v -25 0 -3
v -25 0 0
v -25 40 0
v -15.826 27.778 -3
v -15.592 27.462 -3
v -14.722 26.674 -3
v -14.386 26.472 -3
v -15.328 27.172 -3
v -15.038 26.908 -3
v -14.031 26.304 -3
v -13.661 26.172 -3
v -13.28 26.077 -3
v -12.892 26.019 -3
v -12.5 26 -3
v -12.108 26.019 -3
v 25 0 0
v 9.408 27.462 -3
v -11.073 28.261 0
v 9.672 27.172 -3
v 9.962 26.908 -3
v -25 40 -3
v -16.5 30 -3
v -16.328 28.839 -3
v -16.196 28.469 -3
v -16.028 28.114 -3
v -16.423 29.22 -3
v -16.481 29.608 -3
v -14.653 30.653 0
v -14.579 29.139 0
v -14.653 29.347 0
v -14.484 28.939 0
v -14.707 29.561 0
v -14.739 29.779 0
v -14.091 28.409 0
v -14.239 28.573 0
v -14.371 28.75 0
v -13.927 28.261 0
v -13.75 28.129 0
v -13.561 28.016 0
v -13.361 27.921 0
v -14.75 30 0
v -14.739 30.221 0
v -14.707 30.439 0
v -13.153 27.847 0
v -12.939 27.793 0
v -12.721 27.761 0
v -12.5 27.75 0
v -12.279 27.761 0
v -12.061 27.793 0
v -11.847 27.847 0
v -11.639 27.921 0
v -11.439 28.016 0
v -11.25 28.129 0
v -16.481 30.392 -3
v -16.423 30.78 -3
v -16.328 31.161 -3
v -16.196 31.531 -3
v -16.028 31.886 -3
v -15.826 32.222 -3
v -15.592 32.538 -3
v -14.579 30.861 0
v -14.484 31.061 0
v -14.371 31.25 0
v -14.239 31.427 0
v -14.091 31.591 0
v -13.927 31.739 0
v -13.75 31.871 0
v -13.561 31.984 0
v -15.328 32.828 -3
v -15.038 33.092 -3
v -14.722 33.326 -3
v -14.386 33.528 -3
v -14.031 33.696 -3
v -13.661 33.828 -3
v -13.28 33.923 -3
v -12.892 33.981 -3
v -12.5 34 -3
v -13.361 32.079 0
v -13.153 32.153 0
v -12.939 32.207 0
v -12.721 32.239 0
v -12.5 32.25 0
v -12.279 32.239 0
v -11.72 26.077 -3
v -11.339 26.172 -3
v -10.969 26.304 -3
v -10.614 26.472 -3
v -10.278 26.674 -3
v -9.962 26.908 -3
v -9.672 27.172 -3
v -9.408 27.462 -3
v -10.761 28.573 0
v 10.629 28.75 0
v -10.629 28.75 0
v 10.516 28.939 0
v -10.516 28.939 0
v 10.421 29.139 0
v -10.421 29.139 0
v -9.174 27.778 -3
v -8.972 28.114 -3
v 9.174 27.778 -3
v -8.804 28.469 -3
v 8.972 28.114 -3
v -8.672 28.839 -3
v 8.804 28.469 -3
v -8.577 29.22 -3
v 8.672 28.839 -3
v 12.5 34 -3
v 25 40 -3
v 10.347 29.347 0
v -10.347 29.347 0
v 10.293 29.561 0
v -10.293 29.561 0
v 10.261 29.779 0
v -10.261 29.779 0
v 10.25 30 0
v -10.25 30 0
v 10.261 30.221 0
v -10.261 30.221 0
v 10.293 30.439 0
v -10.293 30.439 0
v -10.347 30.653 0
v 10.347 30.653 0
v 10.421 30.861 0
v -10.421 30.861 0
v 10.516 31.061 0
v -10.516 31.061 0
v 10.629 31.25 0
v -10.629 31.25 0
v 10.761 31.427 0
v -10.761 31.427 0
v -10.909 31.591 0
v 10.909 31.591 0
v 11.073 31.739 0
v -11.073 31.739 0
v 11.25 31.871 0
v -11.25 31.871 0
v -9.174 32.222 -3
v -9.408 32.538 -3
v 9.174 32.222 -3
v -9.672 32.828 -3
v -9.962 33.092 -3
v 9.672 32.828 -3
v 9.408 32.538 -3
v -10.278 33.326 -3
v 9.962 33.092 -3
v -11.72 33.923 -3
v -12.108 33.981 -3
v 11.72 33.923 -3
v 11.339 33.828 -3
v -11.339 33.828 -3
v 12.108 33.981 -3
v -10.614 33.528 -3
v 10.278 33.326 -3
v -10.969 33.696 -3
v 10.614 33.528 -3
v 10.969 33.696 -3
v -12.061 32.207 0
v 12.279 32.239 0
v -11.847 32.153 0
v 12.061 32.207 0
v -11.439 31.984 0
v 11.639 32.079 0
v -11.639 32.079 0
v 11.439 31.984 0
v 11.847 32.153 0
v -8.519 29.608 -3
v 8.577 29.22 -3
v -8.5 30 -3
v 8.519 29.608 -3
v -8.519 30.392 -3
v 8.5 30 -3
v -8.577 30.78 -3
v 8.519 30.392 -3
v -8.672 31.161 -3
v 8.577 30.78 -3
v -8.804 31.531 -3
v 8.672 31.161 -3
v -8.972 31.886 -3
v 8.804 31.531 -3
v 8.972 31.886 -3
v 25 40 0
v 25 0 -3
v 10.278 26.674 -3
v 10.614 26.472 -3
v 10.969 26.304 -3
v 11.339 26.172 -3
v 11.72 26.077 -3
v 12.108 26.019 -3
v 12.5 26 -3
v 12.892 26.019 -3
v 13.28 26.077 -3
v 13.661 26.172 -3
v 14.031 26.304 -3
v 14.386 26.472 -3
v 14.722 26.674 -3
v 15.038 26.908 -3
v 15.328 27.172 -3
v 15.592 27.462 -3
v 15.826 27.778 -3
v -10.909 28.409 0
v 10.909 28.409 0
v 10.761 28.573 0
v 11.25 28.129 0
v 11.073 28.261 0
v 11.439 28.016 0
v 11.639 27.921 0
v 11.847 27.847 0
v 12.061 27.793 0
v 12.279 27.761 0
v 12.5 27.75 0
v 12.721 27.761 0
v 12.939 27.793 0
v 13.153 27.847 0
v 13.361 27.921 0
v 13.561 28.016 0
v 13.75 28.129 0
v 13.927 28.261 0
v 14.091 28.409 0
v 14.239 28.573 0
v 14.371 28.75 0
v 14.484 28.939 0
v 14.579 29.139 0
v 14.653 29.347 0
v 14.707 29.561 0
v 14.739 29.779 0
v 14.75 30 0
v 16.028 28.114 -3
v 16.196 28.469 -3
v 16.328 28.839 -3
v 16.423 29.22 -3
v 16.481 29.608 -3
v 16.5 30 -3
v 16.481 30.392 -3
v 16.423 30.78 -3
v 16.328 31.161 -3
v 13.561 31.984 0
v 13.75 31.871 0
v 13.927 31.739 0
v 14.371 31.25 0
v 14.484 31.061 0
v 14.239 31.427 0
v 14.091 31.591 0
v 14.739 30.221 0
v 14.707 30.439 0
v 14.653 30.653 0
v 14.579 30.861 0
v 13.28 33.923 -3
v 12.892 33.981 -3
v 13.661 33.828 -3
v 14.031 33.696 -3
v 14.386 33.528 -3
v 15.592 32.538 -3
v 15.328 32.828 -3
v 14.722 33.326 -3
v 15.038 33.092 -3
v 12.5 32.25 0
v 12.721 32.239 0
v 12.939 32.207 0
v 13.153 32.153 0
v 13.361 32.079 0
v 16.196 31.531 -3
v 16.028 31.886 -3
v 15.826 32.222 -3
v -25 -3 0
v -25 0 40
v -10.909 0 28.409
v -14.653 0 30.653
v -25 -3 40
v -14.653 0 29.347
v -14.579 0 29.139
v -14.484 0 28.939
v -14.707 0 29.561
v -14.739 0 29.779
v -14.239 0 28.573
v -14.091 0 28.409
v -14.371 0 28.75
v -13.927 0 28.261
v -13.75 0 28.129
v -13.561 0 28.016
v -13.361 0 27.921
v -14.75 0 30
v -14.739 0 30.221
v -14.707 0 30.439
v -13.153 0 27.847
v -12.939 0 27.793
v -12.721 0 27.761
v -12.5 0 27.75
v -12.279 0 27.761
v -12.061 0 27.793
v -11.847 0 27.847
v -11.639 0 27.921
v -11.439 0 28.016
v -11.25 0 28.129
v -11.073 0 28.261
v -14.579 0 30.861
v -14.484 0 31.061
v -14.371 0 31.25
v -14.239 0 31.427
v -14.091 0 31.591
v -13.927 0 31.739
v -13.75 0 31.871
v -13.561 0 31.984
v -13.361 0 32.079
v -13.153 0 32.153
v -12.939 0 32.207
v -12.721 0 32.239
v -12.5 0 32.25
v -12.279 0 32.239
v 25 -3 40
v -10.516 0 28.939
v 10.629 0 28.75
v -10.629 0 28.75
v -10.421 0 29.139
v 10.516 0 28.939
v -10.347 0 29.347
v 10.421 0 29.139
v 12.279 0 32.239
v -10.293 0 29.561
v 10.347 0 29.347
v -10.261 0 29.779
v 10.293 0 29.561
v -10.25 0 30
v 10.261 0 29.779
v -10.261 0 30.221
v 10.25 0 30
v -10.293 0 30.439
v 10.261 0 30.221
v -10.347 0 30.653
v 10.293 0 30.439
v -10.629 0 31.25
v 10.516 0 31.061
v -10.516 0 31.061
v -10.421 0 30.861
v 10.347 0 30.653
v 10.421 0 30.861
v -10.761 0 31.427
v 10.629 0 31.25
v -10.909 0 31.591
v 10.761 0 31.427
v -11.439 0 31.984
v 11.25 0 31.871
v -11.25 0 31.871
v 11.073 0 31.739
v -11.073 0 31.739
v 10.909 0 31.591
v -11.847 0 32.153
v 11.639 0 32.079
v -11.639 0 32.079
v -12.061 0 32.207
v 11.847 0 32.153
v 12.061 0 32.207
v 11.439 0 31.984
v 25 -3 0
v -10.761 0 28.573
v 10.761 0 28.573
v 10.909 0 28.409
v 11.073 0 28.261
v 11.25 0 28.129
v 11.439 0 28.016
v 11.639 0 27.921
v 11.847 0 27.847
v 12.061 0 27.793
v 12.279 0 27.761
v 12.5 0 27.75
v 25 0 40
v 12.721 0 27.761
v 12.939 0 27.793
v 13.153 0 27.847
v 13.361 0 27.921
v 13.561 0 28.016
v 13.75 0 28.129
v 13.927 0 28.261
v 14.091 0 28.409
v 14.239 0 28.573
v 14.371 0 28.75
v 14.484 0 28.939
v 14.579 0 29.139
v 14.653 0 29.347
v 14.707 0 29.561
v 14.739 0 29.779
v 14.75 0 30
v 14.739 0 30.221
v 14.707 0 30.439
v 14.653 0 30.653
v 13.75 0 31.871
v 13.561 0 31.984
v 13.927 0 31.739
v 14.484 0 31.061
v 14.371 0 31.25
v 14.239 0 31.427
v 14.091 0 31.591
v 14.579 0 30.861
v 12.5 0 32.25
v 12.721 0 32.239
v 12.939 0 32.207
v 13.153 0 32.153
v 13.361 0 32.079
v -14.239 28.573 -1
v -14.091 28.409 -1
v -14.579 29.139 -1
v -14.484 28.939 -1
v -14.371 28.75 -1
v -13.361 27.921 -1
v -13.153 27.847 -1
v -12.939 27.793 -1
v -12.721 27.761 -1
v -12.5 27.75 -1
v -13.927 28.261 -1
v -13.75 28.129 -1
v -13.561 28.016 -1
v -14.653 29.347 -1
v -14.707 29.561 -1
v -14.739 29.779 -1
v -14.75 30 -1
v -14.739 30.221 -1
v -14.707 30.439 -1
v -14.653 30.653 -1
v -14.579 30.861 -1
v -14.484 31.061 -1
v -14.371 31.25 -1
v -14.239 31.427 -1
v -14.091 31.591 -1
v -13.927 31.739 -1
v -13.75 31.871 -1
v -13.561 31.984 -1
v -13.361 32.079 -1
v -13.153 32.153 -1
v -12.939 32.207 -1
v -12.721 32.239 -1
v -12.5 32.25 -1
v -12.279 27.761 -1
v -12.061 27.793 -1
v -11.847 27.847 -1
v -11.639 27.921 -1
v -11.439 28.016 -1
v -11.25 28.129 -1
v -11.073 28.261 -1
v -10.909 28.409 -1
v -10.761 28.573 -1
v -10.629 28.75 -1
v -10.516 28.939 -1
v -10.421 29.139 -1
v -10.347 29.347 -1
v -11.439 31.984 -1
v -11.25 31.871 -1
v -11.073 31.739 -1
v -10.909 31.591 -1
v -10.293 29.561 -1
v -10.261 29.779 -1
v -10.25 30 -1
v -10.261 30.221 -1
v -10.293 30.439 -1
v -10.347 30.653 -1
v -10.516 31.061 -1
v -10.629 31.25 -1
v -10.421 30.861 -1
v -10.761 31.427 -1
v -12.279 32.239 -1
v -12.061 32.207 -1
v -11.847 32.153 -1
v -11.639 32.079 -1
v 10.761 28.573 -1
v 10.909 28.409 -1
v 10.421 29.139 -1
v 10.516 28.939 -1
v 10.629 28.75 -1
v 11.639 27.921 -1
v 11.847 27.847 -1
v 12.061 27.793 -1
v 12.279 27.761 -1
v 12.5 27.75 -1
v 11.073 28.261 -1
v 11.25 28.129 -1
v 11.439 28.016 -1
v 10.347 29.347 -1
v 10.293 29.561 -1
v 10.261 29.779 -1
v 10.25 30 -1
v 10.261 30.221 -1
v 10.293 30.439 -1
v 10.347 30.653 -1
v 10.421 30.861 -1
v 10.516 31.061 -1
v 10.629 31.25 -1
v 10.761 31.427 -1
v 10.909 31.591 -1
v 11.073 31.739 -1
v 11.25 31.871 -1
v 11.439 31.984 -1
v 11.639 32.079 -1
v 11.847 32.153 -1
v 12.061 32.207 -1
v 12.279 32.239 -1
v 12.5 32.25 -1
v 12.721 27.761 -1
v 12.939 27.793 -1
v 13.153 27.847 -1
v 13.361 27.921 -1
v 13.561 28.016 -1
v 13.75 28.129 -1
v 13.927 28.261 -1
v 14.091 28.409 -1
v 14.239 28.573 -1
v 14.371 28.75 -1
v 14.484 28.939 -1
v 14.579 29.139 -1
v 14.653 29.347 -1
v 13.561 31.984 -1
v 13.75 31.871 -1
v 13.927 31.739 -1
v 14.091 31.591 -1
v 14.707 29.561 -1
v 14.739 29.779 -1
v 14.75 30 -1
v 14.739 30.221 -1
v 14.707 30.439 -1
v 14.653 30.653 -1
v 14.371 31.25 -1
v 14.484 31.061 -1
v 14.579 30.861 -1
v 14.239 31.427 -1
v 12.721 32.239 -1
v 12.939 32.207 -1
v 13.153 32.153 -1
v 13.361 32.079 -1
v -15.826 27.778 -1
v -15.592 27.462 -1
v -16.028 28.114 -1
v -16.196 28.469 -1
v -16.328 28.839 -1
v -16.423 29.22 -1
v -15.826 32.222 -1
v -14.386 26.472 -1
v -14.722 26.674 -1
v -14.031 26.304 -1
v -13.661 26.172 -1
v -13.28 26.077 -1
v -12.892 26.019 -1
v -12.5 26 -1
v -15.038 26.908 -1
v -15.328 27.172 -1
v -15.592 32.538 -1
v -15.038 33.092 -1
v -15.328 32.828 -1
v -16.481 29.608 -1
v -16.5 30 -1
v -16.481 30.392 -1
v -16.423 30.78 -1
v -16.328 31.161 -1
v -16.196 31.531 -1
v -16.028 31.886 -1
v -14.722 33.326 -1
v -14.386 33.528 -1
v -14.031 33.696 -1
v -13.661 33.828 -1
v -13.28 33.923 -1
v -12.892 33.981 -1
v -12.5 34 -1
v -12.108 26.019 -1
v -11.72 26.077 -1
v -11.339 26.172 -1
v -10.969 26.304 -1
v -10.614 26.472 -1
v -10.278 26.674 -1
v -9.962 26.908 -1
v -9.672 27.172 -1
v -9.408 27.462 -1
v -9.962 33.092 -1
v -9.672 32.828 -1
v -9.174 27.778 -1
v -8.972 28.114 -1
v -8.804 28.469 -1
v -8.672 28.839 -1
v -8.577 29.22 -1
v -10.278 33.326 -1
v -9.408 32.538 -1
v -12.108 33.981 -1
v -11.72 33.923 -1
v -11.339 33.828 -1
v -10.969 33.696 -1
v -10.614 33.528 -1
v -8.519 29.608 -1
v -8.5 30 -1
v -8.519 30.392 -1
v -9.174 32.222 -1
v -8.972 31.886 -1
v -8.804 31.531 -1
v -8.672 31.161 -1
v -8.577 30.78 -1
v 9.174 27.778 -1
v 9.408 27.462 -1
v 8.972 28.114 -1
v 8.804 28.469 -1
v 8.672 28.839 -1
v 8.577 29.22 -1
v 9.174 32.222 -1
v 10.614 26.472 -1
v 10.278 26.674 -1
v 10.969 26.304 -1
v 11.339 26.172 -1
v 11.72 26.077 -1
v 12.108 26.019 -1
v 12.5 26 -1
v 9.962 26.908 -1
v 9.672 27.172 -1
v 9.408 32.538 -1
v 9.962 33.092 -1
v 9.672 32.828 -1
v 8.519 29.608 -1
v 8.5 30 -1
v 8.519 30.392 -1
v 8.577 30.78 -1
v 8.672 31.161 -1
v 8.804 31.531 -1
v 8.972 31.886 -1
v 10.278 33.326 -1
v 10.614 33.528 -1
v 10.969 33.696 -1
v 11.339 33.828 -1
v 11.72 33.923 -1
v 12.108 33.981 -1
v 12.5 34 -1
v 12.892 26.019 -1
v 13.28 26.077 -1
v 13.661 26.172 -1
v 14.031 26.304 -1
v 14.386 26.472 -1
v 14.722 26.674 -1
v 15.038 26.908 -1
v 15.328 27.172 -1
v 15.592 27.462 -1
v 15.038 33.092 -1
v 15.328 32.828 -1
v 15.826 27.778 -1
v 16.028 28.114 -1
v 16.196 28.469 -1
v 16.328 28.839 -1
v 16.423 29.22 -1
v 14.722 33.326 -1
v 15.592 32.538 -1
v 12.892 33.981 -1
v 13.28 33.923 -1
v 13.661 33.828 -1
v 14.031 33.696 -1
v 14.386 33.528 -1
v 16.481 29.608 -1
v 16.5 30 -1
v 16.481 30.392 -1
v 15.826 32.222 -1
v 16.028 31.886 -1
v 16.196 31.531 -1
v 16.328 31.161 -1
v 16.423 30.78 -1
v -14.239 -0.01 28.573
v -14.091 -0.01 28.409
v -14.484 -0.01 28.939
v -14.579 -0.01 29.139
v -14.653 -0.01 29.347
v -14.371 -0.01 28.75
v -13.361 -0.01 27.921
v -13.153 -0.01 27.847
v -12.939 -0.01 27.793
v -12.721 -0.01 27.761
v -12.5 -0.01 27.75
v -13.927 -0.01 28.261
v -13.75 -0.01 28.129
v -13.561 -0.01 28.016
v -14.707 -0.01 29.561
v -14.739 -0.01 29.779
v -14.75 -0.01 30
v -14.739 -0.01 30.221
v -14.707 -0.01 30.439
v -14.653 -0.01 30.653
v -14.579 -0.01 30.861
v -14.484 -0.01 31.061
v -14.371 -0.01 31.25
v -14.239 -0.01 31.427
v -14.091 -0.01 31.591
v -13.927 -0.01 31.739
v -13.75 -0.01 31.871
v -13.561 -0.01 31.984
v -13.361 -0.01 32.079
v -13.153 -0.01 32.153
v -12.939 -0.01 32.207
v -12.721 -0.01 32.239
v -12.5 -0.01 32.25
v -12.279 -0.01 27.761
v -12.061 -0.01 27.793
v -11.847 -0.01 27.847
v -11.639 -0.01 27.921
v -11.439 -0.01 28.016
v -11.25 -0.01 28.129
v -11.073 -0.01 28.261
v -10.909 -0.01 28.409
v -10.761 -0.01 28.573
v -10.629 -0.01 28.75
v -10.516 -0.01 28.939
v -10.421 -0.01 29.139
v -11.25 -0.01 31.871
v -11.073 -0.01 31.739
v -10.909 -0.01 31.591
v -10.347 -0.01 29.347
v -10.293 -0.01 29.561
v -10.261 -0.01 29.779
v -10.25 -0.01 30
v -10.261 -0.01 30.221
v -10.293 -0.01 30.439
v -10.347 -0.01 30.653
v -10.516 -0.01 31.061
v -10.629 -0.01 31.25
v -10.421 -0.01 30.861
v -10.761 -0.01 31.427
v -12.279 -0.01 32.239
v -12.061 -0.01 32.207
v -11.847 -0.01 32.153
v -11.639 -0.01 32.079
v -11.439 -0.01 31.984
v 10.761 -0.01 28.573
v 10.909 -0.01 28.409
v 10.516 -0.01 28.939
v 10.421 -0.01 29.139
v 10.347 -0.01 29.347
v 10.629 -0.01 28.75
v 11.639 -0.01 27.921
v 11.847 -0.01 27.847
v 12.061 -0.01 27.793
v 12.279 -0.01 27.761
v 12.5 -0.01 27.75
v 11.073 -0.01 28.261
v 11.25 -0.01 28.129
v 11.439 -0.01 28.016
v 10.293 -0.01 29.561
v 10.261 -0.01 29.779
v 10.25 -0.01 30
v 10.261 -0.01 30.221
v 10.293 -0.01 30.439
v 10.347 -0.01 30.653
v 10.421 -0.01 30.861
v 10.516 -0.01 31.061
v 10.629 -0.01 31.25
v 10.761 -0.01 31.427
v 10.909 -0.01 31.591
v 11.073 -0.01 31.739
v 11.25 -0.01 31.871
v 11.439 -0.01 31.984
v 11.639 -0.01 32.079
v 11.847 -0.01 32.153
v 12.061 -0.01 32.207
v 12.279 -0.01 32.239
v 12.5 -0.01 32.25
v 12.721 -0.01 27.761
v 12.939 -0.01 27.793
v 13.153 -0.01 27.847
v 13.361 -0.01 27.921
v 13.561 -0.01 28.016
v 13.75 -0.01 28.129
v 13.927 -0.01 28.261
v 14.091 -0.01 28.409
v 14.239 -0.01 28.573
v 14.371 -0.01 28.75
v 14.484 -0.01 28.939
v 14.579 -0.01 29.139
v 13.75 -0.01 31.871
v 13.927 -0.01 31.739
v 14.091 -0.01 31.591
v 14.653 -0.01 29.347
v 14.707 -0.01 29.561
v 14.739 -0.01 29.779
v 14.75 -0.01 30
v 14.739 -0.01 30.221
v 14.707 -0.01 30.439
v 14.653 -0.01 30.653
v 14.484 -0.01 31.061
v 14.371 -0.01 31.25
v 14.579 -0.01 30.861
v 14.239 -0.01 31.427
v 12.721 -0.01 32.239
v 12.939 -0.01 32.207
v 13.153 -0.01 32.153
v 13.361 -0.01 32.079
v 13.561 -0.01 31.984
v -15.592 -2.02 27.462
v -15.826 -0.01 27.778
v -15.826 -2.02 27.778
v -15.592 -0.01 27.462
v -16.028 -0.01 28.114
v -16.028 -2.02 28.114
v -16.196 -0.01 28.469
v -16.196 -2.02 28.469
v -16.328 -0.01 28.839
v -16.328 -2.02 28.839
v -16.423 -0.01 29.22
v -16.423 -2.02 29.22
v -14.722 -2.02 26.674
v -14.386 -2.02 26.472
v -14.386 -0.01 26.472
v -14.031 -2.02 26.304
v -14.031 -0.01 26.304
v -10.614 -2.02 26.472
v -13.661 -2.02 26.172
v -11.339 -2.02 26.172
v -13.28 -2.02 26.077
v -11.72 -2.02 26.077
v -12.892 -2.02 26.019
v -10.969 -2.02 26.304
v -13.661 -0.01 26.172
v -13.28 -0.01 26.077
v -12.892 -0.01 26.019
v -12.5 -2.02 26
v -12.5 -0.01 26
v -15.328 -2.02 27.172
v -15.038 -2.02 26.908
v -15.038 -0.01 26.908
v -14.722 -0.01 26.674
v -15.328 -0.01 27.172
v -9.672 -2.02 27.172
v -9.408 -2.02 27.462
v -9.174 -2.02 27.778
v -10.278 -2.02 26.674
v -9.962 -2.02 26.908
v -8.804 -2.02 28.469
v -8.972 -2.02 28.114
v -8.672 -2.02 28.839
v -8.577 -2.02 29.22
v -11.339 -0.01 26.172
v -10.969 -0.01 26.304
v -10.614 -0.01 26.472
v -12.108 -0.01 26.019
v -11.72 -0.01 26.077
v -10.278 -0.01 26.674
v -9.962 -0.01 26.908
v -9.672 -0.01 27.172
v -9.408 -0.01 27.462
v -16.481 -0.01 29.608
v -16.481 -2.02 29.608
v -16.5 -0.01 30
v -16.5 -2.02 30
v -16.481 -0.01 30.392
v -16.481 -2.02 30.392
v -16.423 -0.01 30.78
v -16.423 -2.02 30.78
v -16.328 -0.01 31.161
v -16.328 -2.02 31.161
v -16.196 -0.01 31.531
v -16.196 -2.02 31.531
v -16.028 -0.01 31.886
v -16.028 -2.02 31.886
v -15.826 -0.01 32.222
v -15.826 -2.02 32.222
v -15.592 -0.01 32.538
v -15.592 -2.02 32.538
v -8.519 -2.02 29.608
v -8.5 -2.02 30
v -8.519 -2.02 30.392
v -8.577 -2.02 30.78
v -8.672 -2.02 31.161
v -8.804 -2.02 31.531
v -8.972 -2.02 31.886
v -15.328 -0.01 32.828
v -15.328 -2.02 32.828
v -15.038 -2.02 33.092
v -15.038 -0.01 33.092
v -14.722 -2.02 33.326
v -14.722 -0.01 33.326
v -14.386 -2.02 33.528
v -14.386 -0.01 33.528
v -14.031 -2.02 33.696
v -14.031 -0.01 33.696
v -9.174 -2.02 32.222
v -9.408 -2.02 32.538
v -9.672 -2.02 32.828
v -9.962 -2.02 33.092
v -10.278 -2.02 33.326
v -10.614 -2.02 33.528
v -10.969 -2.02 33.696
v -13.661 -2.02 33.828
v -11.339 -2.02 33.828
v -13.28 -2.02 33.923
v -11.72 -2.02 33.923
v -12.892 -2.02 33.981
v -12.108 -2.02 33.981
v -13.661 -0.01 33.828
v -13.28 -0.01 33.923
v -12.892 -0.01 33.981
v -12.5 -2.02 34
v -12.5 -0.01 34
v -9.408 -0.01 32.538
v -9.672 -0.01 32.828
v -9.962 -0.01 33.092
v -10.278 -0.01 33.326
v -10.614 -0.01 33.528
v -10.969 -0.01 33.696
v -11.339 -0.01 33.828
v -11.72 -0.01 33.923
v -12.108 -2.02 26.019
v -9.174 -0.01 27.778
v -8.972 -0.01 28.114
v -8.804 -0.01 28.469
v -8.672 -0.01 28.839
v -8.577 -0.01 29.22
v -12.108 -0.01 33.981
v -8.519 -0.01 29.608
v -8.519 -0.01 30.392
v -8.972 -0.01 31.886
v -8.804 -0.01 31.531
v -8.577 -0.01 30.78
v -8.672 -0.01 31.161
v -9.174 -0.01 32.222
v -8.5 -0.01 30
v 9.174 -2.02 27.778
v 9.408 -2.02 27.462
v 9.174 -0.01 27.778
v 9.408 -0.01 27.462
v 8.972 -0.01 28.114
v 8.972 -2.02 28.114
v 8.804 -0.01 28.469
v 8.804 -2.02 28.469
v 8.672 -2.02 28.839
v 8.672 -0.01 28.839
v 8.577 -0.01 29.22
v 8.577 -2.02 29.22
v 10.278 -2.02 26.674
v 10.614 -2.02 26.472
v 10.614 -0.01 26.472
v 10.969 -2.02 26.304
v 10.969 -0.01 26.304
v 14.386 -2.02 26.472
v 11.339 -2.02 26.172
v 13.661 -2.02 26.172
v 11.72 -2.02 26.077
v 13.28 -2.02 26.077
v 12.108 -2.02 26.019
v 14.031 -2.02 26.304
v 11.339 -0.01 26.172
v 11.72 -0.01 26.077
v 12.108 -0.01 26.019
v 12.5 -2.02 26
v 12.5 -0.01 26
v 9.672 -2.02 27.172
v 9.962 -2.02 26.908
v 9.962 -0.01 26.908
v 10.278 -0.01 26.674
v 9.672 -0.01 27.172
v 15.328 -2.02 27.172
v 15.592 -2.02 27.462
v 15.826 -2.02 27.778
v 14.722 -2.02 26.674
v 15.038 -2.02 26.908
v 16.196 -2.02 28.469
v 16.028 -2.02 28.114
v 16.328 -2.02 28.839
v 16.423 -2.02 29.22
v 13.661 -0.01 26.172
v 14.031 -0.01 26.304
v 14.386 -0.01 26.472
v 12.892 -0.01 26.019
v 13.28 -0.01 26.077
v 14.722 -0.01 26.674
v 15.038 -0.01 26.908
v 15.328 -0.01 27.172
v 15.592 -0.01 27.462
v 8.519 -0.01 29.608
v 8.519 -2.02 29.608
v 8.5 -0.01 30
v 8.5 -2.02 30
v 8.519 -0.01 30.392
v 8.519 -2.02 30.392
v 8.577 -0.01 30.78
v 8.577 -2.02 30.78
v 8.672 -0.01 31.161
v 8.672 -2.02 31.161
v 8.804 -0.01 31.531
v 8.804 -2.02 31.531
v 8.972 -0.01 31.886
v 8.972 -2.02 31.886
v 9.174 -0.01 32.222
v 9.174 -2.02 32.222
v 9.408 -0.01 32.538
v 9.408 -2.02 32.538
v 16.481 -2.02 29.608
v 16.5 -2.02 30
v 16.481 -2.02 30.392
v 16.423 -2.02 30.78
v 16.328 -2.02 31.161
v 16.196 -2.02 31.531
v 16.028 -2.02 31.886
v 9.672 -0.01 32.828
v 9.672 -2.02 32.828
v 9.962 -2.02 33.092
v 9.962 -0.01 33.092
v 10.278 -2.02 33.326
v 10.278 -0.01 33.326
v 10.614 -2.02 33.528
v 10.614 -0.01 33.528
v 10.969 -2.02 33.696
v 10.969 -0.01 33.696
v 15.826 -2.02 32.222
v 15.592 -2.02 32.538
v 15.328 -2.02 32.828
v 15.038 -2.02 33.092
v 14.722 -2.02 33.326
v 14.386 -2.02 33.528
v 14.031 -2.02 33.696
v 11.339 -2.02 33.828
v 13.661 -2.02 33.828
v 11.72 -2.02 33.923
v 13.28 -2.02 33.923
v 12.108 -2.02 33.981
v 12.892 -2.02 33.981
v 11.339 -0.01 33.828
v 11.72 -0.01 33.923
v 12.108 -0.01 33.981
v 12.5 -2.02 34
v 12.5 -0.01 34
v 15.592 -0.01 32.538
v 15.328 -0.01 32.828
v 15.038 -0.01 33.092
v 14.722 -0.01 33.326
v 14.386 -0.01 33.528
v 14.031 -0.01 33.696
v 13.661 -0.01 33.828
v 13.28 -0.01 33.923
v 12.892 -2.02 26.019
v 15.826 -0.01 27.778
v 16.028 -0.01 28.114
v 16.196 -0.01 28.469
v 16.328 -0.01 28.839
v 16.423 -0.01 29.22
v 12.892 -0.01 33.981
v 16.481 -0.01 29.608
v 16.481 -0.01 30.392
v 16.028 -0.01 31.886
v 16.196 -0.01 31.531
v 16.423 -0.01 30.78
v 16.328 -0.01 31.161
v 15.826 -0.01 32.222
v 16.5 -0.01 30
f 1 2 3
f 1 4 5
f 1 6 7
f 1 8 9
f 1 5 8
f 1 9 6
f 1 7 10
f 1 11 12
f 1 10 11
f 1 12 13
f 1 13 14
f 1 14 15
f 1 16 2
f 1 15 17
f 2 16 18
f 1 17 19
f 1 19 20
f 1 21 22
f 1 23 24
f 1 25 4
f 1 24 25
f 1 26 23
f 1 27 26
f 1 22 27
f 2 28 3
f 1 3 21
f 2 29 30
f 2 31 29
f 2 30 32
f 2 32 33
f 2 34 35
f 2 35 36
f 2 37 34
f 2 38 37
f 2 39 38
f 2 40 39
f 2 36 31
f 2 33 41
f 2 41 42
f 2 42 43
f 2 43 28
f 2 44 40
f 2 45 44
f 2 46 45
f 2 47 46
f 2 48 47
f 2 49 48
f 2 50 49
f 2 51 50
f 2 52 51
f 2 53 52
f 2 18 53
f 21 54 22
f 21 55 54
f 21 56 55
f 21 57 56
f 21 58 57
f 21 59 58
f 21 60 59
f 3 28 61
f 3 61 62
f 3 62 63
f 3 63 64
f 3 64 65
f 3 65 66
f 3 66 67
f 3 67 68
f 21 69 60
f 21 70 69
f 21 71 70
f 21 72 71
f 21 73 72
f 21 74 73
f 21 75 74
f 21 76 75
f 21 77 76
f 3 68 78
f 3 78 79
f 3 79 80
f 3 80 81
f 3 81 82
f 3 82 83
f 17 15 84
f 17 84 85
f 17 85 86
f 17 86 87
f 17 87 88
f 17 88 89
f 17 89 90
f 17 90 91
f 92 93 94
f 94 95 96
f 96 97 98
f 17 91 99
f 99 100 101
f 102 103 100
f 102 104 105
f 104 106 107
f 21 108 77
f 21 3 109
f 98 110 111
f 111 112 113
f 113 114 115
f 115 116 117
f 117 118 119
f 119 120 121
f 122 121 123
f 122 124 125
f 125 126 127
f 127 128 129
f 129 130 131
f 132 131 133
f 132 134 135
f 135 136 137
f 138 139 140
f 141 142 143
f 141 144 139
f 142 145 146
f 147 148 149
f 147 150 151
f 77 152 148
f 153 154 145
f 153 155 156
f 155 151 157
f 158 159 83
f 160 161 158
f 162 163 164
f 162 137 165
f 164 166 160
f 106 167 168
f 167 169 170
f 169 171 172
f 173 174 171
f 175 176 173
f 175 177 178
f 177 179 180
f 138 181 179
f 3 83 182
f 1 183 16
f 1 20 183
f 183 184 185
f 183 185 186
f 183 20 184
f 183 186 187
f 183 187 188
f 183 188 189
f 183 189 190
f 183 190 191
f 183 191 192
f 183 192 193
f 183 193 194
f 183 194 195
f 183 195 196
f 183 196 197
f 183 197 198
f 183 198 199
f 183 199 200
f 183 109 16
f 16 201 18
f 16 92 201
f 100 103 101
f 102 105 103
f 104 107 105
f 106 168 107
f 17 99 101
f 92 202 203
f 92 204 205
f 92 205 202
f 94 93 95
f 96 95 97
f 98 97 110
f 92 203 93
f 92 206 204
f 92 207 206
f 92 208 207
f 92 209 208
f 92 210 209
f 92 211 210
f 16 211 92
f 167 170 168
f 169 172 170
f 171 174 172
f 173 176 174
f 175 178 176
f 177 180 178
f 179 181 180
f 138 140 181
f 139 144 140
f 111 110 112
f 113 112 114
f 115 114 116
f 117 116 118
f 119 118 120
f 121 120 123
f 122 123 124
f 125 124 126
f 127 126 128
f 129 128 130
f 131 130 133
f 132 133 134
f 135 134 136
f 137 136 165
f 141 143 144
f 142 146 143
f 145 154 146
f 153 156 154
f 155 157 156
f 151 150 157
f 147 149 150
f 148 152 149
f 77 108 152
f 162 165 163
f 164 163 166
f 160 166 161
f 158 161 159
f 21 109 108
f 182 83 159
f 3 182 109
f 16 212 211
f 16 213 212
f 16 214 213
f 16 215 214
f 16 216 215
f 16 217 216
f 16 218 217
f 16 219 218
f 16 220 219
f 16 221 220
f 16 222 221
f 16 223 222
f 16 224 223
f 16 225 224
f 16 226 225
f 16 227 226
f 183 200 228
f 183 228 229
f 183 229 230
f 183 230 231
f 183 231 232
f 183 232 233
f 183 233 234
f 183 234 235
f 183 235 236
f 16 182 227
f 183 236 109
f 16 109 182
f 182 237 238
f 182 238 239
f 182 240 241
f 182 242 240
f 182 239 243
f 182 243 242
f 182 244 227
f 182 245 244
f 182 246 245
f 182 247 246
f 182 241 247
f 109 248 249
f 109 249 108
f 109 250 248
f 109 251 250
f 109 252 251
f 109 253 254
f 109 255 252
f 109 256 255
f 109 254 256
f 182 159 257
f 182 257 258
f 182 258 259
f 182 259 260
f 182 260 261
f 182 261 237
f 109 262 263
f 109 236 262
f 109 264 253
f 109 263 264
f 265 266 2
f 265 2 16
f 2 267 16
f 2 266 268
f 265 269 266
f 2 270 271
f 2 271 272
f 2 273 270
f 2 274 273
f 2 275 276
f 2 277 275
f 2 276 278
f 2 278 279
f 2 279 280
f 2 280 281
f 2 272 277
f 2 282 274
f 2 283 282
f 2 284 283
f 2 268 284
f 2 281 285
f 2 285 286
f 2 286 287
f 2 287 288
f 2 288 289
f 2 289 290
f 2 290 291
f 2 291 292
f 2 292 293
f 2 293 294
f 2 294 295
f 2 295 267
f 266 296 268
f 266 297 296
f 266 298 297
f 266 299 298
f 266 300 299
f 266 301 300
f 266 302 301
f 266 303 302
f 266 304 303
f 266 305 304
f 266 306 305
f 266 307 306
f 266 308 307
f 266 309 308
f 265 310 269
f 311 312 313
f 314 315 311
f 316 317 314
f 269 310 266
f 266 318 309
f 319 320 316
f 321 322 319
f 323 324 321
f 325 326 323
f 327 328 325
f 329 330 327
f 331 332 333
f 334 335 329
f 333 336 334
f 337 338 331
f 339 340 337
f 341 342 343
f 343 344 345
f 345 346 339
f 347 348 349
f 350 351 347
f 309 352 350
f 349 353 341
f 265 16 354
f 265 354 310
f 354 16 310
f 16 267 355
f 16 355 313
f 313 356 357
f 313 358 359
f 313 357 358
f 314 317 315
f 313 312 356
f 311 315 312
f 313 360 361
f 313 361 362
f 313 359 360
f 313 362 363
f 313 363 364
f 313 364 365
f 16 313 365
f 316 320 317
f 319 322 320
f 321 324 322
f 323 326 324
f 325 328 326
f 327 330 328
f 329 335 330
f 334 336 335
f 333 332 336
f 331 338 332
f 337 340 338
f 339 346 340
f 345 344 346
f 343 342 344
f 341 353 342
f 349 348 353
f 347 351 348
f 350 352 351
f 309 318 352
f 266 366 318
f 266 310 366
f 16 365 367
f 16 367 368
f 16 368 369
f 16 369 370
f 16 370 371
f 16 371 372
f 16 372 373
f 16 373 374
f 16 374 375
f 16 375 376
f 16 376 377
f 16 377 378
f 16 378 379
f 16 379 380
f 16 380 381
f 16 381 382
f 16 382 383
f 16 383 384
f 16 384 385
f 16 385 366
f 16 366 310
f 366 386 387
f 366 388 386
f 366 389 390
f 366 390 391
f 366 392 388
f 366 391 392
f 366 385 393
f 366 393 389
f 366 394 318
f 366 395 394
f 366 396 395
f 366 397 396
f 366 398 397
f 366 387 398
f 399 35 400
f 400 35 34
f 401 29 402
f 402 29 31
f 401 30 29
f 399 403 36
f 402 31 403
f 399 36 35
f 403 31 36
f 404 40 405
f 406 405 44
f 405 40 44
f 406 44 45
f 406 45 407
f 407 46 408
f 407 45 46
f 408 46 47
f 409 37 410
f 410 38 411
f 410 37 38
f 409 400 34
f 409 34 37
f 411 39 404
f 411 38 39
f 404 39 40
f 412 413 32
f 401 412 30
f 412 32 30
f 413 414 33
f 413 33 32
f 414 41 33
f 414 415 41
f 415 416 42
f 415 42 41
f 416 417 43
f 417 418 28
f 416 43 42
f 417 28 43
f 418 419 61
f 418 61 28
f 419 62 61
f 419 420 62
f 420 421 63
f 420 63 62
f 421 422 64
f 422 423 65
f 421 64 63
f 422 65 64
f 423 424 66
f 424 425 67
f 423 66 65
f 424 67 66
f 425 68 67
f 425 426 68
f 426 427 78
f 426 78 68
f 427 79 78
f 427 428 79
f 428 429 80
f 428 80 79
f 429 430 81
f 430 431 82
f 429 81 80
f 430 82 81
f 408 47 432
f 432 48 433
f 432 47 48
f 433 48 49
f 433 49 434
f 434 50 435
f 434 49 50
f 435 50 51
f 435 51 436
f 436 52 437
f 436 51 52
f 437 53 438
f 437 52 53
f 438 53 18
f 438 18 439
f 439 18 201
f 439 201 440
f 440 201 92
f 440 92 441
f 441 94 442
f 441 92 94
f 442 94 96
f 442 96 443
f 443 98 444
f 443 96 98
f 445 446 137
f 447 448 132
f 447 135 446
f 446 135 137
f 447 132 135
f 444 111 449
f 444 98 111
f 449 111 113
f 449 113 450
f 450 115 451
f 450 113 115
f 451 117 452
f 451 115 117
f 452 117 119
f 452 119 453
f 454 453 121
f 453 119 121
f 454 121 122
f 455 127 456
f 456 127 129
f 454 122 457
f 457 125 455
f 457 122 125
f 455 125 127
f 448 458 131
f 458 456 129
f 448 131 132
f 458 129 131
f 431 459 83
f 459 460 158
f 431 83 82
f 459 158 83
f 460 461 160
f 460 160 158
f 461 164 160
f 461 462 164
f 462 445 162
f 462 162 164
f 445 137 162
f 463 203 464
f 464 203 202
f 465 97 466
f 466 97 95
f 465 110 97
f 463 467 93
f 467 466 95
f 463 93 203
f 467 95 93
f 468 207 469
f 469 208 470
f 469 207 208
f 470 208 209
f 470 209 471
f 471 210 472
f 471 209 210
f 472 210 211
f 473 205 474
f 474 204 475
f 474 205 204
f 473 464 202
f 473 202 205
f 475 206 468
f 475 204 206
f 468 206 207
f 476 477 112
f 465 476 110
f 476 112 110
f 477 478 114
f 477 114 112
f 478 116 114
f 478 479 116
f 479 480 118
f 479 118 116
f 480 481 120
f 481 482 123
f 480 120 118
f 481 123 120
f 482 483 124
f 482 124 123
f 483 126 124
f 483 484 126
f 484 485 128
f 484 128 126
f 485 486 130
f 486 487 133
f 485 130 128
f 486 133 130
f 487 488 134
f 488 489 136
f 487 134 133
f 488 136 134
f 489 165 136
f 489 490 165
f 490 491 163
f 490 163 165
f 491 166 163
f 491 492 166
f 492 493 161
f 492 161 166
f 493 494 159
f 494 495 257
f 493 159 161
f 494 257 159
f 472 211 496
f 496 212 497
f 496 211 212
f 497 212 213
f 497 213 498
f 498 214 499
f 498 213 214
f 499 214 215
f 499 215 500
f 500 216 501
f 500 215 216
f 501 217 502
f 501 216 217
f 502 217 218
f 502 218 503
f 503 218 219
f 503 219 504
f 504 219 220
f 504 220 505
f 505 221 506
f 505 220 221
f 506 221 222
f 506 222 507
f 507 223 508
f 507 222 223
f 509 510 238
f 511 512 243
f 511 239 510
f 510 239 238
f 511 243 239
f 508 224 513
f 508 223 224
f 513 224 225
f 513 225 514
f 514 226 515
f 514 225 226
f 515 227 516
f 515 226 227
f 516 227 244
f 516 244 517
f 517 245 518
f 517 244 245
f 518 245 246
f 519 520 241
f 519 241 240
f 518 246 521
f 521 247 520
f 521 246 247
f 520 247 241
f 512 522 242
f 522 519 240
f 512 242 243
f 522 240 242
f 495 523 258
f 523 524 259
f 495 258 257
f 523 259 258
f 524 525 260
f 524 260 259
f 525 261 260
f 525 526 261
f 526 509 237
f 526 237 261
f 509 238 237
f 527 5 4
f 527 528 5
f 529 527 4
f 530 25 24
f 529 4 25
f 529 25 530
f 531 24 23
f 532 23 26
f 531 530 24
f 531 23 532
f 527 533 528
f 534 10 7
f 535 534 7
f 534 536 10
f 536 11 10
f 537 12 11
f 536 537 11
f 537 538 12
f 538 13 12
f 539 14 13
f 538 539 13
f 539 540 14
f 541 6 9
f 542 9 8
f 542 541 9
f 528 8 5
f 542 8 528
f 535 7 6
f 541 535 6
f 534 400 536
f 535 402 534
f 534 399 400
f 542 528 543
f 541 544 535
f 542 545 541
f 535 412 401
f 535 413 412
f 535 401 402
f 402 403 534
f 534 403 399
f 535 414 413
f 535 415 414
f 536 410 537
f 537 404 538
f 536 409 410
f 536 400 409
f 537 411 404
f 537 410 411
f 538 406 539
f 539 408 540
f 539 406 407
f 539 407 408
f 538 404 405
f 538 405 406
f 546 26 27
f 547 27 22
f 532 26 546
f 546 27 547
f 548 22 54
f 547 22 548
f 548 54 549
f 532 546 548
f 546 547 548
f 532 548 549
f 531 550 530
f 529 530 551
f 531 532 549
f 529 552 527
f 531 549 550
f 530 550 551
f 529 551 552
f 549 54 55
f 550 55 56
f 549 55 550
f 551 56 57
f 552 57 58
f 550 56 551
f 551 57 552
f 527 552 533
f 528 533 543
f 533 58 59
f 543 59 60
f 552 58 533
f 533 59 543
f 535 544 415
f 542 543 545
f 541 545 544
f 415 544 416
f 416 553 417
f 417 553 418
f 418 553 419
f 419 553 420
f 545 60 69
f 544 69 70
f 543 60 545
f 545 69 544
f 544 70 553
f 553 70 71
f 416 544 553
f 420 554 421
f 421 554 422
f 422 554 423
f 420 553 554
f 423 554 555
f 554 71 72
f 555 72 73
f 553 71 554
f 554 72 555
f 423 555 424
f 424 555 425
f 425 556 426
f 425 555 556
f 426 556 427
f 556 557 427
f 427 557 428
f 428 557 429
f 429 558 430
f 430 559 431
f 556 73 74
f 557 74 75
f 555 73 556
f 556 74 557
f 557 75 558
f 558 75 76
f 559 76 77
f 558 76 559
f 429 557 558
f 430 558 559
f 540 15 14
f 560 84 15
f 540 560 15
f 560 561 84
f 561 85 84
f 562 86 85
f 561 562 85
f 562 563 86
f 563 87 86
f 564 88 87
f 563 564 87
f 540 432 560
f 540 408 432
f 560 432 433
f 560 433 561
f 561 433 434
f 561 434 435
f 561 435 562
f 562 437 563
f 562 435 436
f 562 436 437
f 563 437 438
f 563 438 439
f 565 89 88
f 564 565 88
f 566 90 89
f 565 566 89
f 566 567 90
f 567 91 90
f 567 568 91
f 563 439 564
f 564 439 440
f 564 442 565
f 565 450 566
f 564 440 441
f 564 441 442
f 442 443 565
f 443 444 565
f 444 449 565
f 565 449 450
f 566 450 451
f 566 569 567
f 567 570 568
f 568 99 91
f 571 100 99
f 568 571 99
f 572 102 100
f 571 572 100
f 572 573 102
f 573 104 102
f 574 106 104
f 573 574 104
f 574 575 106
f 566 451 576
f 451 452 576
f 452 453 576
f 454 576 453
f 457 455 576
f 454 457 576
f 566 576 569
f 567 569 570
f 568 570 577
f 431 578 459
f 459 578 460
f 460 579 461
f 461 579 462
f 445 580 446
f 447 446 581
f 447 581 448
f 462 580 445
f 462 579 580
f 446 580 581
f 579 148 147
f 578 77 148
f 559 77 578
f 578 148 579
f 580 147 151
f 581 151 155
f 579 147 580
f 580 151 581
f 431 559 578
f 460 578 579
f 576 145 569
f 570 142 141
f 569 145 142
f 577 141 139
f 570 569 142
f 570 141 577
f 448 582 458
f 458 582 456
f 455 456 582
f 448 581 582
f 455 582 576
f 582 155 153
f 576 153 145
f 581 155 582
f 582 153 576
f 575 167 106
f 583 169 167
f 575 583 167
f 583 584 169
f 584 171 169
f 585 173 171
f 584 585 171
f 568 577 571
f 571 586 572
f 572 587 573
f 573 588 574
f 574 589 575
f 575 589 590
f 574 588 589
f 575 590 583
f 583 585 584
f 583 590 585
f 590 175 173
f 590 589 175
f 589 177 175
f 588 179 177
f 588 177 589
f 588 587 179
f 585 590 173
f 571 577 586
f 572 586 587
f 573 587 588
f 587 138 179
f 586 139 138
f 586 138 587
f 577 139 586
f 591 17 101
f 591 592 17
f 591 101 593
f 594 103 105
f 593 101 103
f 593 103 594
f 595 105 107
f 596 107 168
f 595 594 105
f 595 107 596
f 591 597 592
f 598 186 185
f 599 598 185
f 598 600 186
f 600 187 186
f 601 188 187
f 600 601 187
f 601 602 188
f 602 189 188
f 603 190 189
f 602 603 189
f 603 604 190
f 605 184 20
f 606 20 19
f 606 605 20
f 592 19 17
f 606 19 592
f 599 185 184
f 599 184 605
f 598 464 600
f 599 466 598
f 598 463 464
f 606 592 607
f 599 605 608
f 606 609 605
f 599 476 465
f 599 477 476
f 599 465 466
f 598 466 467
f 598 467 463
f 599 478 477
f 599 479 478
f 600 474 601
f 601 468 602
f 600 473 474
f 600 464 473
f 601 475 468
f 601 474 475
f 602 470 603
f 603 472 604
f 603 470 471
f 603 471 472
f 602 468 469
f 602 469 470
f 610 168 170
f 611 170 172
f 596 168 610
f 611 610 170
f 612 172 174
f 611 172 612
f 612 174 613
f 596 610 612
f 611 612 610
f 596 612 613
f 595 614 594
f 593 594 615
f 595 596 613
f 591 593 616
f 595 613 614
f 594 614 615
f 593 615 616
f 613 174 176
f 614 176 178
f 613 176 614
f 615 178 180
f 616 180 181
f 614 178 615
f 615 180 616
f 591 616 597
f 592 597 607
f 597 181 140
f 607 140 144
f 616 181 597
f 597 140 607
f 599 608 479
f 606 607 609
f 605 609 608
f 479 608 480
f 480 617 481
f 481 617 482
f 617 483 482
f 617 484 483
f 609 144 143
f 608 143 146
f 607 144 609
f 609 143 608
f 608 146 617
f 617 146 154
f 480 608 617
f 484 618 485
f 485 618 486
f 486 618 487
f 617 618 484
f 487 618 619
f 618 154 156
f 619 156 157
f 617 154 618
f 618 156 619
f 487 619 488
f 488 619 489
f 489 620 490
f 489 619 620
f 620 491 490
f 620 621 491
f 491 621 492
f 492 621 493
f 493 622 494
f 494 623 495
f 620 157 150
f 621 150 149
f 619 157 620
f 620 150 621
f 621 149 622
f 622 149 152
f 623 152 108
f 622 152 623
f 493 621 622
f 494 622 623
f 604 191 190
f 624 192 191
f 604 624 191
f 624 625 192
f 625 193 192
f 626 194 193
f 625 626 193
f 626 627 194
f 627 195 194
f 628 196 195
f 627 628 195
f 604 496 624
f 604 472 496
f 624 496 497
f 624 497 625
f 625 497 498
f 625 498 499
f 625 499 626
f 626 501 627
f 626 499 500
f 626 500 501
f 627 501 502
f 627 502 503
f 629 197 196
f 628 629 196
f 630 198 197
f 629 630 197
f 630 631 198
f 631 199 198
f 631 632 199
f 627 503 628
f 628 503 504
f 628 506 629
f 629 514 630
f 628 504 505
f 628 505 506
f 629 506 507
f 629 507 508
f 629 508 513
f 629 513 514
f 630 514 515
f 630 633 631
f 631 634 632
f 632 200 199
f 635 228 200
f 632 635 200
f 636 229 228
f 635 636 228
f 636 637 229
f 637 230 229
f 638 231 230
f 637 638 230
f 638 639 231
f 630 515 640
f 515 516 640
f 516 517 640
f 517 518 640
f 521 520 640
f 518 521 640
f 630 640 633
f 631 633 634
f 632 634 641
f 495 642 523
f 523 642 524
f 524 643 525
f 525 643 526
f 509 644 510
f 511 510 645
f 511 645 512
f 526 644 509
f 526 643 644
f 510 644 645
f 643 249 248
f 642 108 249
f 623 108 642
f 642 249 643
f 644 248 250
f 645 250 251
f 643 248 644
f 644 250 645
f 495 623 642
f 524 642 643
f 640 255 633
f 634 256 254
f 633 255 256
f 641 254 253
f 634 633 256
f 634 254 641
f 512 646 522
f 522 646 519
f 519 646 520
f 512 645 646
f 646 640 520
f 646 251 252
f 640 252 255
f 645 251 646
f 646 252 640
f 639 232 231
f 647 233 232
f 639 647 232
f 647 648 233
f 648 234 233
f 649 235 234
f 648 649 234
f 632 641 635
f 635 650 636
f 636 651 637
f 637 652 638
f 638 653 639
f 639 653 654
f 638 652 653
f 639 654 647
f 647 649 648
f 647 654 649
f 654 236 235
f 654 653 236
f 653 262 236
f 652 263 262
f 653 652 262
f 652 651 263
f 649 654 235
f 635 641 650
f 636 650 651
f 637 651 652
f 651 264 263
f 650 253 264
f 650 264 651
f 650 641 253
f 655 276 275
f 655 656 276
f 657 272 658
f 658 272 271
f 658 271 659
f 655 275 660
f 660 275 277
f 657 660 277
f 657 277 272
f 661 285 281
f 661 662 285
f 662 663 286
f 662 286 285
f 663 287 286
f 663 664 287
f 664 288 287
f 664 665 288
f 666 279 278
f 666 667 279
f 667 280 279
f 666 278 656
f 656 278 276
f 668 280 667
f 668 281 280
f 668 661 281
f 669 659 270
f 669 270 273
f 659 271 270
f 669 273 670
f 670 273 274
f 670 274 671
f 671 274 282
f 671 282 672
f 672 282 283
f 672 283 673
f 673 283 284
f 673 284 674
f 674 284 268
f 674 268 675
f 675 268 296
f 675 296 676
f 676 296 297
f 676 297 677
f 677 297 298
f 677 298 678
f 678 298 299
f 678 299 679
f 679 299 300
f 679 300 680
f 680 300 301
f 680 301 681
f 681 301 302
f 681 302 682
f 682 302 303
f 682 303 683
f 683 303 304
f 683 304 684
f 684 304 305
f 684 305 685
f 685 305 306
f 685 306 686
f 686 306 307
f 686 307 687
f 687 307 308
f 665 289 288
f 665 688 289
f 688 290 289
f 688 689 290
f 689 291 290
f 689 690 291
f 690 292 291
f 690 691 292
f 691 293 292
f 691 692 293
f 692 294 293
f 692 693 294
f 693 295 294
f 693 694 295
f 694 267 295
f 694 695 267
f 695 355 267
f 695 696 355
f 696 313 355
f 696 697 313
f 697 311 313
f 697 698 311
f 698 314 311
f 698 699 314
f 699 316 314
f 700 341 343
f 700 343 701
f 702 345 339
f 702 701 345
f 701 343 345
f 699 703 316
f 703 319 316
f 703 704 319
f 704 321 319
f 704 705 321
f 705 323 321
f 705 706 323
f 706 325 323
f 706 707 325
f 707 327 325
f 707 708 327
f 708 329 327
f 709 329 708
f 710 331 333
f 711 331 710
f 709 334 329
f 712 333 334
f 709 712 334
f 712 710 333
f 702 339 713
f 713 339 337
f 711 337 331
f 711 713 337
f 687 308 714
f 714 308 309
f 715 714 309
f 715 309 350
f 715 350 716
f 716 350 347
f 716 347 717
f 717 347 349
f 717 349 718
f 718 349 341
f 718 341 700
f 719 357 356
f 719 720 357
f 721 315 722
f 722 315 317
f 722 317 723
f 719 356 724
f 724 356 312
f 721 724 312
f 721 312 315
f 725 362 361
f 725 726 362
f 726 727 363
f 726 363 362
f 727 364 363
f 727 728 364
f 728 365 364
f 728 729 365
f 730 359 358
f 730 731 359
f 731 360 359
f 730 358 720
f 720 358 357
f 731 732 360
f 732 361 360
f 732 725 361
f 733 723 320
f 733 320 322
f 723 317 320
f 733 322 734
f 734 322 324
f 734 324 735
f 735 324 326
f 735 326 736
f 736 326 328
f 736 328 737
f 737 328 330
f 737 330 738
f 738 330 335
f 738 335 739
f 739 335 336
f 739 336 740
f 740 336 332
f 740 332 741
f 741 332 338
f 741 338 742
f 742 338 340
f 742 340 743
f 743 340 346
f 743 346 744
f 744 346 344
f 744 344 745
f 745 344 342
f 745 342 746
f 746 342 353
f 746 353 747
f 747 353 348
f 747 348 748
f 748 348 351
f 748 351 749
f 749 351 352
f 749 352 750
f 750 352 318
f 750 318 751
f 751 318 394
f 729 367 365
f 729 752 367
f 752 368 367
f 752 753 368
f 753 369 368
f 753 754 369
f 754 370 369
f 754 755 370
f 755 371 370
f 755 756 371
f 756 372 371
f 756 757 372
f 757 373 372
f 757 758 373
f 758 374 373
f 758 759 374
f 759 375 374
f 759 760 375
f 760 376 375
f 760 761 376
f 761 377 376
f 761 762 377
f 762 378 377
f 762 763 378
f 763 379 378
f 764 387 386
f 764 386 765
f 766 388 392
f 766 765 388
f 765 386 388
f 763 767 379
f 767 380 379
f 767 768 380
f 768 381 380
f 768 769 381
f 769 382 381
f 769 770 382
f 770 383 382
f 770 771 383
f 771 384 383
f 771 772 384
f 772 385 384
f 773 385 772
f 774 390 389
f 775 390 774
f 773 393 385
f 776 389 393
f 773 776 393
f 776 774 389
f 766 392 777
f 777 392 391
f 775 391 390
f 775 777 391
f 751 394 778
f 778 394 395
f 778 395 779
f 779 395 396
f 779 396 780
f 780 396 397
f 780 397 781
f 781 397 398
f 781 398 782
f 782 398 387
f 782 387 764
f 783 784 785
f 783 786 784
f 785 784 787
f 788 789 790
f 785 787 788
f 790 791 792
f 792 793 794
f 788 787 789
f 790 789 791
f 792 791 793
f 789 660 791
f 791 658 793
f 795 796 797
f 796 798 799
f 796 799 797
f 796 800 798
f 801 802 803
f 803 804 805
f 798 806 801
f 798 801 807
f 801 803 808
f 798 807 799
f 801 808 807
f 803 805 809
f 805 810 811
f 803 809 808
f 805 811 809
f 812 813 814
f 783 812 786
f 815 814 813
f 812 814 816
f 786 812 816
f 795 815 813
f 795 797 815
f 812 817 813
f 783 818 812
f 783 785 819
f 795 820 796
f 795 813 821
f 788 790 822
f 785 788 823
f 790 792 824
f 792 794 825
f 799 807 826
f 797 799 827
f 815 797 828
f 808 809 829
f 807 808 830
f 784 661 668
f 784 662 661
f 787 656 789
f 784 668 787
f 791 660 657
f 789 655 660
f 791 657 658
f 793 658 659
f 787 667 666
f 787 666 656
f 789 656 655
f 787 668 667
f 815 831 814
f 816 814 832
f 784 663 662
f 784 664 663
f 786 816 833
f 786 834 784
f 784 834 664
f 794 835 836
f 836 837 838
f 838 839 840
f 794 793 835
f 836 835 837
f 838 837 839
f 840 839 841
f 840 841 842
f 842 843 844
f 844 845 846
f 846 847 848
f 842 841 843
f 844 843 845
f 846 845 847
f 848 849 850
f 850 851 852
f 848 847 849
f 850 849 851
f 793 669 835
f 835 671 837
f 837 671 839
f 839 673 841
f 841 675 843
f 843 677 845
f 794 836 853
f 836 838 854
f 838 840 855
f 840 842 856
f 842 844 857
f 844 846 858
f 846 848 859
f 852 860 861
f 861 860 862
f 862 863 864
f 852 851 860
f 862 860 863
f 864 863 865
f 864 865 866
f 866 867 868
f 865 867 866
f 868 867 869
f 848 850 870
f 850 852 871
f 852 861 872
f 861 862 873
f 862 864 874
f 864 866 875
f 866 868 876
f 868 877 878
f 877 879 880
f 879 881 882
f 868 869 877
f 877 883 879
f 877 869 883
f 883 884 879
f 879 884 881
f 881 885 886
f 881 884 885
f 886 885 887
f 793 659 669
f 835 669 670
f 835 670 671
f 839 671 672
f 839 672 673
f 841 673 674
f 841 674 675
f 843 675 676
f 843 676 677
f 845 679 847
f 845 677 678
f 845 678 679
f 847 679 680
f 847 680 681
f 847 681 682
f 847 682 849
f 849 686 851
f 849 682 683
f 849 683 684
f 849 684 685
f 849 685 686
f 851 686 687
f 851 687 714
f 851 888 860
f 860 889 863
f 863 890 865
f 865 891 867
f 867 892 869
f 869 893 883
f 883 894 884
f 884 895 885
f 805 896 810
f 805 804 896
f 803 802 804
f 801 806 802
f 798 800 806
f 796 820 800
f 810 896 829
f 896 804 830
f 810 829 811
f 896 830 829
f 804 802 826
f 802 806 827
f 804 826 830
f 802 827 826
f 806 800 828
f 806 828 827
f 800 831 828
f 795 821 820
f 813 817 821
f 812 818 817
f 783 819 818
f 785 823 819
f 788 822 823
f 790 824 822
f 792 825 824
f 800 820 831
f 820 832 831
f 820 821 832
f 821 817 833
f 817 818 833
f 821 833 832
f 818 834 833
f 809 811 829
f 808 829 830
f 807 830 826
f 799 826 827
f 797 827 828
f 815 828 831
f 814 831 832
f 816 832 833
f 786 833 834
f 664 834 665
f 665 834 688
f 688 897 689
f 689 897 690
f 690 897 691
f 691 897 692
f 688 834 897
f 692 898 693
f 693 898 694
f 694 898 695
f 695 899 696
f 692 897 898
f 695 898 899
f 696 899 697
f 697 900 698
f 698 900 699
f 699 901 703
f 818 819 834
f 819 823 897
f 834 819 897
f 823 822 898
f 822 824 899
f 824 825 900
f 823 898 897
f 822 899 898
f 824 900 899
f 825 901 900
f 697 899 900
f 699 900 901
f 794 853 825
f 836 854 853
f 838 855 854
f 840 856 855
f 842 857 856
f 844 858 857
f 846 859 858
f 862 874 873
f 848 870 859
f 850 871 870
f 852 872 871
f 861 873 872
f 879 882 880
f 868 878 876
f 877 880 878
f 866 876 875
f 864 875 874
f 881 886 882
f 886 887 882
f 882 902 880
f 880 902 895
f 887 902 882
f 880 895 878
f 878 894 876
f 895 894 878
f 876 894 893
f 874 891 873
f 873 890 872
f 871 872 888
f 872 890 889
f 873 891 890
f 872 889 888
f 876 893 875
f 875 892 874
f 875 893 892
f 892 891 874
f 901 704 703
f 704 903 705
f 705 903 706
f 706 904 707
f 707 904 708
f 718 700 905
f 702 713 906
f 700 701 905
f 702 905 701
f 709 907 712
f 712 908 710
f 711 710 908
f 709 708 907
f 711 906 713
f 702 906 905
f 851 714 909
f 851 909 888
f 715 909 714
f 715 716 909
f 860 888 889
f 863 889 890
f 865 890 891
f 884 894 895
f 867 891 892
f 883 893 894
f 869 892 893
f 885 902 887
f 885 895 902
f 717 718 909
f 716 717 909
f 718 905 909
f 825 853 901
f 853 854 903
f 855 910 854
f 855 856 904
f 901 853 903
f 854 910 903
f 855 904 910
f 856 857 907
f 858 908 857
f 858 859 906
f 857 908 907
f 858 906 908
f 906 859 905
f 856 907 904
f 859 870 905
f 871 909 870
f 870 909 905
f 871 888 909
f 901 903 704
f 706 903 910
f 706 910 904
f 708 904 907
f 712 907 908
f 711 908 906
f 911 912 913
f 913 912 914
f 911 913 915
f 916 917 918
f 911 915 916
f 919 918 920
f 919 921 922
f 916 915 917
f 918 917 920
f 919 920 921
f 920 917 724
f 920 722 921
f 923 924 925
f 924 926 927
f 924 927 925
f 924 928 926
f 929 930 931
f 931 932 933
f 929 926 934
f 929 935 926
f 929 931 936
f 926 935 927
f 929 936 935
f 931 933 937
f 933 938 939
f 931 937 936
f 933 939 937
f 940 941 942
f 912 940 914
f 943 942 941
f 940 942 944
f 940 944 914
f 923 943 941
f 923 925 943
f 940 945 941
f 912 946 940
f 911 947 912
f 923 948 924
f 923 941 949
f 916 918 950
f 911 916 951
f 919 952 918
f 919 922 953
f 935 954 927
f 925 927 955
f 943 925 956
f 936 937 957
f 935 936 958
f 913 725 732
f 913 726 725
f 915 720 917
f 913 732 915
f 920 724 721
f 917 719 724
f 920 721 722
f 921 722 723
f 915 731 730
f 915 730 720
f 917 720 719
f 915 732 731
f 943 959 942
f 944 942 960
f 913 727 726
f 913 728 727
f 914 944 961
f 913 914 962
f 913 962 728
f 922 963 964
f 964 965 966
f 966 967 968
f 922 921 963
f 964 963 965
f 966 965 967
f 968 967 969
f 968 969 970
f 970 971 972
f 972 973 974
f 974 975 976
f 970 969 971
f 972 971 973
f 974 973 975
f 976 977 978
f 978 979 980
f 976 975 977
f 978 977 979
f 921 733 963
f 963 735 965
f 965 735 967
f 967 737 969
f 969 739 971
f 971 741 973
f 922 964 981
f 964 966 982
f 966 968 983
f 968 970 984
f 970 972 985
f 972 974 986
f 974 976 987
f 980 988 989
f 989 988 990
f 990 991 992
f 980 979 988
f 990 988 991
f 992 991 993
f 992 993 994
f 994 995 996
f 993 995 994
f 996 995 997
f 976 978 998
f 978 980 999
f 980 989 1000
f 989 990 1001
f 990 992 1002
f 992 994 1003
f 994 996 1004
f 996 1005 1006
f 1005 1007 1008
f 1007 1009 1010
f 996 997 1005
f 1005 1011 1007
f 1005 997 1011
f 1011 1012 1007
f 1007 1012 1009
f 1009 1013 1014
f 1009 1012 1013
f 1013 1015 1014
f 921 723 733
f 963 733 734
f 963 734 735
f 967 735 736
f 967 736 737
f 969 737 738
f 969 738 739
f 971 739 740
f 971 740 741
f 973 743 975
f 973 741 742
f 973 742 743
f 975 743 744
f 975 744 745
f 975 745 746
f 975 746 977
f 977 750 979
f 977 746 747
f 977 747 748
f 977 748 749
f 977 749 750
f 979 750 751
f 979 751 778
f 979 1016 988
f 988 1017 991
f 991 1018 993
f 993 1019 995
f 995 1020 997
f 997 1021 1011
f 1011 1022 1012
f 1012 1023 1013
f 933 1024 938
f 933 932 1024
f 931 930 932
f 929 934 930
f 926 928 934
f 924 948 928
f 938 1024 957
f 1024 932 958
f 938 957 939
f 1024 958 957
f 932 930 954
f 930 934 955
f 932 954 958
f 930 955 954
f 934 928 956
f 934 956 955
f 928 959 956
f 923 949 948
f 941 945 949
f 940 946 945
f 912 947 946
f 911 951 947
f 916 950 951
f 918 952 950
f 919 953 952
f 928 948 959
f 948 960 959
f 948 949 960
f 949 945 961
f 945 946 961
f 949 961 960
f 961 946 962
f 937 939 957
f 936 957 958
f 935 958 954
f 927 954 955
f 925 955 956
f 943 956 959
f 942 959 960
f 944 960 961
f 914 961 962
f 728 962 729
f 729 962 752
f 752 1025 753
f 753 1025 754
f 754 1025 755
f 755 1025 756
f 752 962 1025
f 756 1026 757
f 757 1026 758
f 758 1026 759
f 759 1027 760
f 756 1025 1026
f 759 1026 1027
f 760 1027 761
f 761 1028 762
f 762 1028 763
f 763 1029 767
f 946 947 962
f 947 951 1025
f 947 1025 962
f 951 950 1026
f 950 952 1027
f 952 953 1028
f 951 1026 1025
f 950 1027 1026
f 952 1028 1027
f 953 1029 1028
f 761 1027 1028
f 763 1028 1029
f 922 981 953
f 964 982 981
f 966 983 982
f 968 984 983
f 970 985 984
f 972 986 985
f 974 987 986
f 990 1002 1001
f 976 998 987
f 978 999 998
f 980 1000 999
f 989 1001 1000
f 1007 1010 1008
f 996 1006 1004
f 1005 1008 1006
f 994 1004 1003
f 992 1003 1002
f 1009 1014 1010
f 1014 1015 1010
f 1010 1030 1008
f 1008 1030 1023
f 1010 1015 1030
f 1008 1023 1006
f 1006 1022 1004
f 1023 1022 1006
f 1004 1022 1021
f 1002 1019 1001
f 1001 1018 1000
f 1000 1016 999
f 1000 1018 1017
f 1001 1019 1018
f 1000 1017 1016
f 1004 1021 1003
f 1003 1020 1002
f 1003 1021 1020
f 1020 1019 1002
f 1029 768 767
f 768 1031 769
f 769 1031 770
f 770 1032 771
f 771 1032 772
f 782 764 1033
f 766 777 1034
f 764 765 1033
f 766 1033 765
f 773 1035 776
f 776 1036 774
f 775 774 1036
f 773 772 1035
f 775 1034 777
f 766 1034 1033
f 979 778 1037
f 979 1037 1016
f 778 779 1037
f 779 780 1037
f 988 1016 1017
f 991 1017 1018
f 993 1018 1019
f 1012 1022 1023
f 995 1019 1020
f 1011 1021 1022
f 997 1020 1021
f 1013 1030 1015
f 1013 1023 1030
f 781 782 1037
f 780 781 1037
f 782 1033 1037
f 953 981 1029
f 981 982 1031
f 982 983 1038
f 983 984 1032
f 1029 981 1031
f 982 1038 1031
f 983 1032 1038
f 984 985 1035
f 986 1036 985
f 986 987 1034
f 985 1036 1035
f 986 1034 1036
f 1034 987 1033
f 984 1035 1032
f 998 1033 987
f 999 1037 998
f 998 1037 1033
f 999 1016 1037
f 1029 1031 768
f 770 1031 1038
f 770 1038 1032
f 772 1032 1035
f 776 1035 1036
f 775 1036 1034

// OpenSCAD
// L-bracket with countersunk holes

$fn = 64;

width      = 50;   // 幅 (X方向)
depth      = 40;   // 水平面の奥行き (Y方向)
height     = 40;   // 垂直面の高さ (Z方向)
thickness  = 3;    // 板厚

hole_dia       = 4.5;  // 貫通穴径
csk_dia        = 8;    // 皿座面径
csk_depth      = 2;    // 皿座面深さ
edge_offset    = 10;   // 面の縁からの距離

module countersunk_hole_z() {
    // Z軸方向の穴(水平面用)、皿座面は下側(外側=Z-)
    union() {
        // 貫通穴
        translate([0, 0, -thickness - 1])
            cylinder(h = thickness + 2, d = hole_dia);
        // 皿座面(外側=下面側)
        translate([0, 0, -thickness - 0.01])
            cylinder(h = csk_depth + 0.01, d = csk_dia);
    }
}

module countersunk_hole_y() {
    // Y軸方向の穴(垂直面用)、皿座面は -Y 側(外側)
    union() {
        // 貫通穴
        translate([0, -1, 0])
            rotate([-90, 0, 0])
                cylinder(h = thickness + 2, d = hole_dia);
        // 皿座面(外側=-Y側)
        translate([0, -0.01, 0])
            rotate([90, 0, 0])
                cylinder(h = csk_depth + 0.01, d = csk_dia);
    }
}

difference() {
    union() {
        // 水平面フランジ (内側コーナー=原点、+Y方向、外側は -Z 側)
        translate([-width/2, 0, -thickness])
            cube([width, depth, thickness]);
        // 垂直面フランジ (内側コーナー=原点、+Z方向、外側は -Y 側)
        translate([-width/2, -thickness, 0])
            cube([width, thickness, height]);
    }

    // 水平面の穴 2 個 (X方向に左右対称、Y方向は縁から10mm内側 = Y = depth - 10)
    for (x = [-width/4, width/4]) {
        translate([x, depth - edge_offset, 0])
            countersunk_hole_z();
    }

    // 垂直面の穴 2 個 (X方向に左右対称、Z方向は縁から10mm内側 = Z = height - 10)
    for (x = [-width/4, width/4]) {
        translate([x, 0, height - edge_offset])
            countersunk_hole_y();
    }
}
